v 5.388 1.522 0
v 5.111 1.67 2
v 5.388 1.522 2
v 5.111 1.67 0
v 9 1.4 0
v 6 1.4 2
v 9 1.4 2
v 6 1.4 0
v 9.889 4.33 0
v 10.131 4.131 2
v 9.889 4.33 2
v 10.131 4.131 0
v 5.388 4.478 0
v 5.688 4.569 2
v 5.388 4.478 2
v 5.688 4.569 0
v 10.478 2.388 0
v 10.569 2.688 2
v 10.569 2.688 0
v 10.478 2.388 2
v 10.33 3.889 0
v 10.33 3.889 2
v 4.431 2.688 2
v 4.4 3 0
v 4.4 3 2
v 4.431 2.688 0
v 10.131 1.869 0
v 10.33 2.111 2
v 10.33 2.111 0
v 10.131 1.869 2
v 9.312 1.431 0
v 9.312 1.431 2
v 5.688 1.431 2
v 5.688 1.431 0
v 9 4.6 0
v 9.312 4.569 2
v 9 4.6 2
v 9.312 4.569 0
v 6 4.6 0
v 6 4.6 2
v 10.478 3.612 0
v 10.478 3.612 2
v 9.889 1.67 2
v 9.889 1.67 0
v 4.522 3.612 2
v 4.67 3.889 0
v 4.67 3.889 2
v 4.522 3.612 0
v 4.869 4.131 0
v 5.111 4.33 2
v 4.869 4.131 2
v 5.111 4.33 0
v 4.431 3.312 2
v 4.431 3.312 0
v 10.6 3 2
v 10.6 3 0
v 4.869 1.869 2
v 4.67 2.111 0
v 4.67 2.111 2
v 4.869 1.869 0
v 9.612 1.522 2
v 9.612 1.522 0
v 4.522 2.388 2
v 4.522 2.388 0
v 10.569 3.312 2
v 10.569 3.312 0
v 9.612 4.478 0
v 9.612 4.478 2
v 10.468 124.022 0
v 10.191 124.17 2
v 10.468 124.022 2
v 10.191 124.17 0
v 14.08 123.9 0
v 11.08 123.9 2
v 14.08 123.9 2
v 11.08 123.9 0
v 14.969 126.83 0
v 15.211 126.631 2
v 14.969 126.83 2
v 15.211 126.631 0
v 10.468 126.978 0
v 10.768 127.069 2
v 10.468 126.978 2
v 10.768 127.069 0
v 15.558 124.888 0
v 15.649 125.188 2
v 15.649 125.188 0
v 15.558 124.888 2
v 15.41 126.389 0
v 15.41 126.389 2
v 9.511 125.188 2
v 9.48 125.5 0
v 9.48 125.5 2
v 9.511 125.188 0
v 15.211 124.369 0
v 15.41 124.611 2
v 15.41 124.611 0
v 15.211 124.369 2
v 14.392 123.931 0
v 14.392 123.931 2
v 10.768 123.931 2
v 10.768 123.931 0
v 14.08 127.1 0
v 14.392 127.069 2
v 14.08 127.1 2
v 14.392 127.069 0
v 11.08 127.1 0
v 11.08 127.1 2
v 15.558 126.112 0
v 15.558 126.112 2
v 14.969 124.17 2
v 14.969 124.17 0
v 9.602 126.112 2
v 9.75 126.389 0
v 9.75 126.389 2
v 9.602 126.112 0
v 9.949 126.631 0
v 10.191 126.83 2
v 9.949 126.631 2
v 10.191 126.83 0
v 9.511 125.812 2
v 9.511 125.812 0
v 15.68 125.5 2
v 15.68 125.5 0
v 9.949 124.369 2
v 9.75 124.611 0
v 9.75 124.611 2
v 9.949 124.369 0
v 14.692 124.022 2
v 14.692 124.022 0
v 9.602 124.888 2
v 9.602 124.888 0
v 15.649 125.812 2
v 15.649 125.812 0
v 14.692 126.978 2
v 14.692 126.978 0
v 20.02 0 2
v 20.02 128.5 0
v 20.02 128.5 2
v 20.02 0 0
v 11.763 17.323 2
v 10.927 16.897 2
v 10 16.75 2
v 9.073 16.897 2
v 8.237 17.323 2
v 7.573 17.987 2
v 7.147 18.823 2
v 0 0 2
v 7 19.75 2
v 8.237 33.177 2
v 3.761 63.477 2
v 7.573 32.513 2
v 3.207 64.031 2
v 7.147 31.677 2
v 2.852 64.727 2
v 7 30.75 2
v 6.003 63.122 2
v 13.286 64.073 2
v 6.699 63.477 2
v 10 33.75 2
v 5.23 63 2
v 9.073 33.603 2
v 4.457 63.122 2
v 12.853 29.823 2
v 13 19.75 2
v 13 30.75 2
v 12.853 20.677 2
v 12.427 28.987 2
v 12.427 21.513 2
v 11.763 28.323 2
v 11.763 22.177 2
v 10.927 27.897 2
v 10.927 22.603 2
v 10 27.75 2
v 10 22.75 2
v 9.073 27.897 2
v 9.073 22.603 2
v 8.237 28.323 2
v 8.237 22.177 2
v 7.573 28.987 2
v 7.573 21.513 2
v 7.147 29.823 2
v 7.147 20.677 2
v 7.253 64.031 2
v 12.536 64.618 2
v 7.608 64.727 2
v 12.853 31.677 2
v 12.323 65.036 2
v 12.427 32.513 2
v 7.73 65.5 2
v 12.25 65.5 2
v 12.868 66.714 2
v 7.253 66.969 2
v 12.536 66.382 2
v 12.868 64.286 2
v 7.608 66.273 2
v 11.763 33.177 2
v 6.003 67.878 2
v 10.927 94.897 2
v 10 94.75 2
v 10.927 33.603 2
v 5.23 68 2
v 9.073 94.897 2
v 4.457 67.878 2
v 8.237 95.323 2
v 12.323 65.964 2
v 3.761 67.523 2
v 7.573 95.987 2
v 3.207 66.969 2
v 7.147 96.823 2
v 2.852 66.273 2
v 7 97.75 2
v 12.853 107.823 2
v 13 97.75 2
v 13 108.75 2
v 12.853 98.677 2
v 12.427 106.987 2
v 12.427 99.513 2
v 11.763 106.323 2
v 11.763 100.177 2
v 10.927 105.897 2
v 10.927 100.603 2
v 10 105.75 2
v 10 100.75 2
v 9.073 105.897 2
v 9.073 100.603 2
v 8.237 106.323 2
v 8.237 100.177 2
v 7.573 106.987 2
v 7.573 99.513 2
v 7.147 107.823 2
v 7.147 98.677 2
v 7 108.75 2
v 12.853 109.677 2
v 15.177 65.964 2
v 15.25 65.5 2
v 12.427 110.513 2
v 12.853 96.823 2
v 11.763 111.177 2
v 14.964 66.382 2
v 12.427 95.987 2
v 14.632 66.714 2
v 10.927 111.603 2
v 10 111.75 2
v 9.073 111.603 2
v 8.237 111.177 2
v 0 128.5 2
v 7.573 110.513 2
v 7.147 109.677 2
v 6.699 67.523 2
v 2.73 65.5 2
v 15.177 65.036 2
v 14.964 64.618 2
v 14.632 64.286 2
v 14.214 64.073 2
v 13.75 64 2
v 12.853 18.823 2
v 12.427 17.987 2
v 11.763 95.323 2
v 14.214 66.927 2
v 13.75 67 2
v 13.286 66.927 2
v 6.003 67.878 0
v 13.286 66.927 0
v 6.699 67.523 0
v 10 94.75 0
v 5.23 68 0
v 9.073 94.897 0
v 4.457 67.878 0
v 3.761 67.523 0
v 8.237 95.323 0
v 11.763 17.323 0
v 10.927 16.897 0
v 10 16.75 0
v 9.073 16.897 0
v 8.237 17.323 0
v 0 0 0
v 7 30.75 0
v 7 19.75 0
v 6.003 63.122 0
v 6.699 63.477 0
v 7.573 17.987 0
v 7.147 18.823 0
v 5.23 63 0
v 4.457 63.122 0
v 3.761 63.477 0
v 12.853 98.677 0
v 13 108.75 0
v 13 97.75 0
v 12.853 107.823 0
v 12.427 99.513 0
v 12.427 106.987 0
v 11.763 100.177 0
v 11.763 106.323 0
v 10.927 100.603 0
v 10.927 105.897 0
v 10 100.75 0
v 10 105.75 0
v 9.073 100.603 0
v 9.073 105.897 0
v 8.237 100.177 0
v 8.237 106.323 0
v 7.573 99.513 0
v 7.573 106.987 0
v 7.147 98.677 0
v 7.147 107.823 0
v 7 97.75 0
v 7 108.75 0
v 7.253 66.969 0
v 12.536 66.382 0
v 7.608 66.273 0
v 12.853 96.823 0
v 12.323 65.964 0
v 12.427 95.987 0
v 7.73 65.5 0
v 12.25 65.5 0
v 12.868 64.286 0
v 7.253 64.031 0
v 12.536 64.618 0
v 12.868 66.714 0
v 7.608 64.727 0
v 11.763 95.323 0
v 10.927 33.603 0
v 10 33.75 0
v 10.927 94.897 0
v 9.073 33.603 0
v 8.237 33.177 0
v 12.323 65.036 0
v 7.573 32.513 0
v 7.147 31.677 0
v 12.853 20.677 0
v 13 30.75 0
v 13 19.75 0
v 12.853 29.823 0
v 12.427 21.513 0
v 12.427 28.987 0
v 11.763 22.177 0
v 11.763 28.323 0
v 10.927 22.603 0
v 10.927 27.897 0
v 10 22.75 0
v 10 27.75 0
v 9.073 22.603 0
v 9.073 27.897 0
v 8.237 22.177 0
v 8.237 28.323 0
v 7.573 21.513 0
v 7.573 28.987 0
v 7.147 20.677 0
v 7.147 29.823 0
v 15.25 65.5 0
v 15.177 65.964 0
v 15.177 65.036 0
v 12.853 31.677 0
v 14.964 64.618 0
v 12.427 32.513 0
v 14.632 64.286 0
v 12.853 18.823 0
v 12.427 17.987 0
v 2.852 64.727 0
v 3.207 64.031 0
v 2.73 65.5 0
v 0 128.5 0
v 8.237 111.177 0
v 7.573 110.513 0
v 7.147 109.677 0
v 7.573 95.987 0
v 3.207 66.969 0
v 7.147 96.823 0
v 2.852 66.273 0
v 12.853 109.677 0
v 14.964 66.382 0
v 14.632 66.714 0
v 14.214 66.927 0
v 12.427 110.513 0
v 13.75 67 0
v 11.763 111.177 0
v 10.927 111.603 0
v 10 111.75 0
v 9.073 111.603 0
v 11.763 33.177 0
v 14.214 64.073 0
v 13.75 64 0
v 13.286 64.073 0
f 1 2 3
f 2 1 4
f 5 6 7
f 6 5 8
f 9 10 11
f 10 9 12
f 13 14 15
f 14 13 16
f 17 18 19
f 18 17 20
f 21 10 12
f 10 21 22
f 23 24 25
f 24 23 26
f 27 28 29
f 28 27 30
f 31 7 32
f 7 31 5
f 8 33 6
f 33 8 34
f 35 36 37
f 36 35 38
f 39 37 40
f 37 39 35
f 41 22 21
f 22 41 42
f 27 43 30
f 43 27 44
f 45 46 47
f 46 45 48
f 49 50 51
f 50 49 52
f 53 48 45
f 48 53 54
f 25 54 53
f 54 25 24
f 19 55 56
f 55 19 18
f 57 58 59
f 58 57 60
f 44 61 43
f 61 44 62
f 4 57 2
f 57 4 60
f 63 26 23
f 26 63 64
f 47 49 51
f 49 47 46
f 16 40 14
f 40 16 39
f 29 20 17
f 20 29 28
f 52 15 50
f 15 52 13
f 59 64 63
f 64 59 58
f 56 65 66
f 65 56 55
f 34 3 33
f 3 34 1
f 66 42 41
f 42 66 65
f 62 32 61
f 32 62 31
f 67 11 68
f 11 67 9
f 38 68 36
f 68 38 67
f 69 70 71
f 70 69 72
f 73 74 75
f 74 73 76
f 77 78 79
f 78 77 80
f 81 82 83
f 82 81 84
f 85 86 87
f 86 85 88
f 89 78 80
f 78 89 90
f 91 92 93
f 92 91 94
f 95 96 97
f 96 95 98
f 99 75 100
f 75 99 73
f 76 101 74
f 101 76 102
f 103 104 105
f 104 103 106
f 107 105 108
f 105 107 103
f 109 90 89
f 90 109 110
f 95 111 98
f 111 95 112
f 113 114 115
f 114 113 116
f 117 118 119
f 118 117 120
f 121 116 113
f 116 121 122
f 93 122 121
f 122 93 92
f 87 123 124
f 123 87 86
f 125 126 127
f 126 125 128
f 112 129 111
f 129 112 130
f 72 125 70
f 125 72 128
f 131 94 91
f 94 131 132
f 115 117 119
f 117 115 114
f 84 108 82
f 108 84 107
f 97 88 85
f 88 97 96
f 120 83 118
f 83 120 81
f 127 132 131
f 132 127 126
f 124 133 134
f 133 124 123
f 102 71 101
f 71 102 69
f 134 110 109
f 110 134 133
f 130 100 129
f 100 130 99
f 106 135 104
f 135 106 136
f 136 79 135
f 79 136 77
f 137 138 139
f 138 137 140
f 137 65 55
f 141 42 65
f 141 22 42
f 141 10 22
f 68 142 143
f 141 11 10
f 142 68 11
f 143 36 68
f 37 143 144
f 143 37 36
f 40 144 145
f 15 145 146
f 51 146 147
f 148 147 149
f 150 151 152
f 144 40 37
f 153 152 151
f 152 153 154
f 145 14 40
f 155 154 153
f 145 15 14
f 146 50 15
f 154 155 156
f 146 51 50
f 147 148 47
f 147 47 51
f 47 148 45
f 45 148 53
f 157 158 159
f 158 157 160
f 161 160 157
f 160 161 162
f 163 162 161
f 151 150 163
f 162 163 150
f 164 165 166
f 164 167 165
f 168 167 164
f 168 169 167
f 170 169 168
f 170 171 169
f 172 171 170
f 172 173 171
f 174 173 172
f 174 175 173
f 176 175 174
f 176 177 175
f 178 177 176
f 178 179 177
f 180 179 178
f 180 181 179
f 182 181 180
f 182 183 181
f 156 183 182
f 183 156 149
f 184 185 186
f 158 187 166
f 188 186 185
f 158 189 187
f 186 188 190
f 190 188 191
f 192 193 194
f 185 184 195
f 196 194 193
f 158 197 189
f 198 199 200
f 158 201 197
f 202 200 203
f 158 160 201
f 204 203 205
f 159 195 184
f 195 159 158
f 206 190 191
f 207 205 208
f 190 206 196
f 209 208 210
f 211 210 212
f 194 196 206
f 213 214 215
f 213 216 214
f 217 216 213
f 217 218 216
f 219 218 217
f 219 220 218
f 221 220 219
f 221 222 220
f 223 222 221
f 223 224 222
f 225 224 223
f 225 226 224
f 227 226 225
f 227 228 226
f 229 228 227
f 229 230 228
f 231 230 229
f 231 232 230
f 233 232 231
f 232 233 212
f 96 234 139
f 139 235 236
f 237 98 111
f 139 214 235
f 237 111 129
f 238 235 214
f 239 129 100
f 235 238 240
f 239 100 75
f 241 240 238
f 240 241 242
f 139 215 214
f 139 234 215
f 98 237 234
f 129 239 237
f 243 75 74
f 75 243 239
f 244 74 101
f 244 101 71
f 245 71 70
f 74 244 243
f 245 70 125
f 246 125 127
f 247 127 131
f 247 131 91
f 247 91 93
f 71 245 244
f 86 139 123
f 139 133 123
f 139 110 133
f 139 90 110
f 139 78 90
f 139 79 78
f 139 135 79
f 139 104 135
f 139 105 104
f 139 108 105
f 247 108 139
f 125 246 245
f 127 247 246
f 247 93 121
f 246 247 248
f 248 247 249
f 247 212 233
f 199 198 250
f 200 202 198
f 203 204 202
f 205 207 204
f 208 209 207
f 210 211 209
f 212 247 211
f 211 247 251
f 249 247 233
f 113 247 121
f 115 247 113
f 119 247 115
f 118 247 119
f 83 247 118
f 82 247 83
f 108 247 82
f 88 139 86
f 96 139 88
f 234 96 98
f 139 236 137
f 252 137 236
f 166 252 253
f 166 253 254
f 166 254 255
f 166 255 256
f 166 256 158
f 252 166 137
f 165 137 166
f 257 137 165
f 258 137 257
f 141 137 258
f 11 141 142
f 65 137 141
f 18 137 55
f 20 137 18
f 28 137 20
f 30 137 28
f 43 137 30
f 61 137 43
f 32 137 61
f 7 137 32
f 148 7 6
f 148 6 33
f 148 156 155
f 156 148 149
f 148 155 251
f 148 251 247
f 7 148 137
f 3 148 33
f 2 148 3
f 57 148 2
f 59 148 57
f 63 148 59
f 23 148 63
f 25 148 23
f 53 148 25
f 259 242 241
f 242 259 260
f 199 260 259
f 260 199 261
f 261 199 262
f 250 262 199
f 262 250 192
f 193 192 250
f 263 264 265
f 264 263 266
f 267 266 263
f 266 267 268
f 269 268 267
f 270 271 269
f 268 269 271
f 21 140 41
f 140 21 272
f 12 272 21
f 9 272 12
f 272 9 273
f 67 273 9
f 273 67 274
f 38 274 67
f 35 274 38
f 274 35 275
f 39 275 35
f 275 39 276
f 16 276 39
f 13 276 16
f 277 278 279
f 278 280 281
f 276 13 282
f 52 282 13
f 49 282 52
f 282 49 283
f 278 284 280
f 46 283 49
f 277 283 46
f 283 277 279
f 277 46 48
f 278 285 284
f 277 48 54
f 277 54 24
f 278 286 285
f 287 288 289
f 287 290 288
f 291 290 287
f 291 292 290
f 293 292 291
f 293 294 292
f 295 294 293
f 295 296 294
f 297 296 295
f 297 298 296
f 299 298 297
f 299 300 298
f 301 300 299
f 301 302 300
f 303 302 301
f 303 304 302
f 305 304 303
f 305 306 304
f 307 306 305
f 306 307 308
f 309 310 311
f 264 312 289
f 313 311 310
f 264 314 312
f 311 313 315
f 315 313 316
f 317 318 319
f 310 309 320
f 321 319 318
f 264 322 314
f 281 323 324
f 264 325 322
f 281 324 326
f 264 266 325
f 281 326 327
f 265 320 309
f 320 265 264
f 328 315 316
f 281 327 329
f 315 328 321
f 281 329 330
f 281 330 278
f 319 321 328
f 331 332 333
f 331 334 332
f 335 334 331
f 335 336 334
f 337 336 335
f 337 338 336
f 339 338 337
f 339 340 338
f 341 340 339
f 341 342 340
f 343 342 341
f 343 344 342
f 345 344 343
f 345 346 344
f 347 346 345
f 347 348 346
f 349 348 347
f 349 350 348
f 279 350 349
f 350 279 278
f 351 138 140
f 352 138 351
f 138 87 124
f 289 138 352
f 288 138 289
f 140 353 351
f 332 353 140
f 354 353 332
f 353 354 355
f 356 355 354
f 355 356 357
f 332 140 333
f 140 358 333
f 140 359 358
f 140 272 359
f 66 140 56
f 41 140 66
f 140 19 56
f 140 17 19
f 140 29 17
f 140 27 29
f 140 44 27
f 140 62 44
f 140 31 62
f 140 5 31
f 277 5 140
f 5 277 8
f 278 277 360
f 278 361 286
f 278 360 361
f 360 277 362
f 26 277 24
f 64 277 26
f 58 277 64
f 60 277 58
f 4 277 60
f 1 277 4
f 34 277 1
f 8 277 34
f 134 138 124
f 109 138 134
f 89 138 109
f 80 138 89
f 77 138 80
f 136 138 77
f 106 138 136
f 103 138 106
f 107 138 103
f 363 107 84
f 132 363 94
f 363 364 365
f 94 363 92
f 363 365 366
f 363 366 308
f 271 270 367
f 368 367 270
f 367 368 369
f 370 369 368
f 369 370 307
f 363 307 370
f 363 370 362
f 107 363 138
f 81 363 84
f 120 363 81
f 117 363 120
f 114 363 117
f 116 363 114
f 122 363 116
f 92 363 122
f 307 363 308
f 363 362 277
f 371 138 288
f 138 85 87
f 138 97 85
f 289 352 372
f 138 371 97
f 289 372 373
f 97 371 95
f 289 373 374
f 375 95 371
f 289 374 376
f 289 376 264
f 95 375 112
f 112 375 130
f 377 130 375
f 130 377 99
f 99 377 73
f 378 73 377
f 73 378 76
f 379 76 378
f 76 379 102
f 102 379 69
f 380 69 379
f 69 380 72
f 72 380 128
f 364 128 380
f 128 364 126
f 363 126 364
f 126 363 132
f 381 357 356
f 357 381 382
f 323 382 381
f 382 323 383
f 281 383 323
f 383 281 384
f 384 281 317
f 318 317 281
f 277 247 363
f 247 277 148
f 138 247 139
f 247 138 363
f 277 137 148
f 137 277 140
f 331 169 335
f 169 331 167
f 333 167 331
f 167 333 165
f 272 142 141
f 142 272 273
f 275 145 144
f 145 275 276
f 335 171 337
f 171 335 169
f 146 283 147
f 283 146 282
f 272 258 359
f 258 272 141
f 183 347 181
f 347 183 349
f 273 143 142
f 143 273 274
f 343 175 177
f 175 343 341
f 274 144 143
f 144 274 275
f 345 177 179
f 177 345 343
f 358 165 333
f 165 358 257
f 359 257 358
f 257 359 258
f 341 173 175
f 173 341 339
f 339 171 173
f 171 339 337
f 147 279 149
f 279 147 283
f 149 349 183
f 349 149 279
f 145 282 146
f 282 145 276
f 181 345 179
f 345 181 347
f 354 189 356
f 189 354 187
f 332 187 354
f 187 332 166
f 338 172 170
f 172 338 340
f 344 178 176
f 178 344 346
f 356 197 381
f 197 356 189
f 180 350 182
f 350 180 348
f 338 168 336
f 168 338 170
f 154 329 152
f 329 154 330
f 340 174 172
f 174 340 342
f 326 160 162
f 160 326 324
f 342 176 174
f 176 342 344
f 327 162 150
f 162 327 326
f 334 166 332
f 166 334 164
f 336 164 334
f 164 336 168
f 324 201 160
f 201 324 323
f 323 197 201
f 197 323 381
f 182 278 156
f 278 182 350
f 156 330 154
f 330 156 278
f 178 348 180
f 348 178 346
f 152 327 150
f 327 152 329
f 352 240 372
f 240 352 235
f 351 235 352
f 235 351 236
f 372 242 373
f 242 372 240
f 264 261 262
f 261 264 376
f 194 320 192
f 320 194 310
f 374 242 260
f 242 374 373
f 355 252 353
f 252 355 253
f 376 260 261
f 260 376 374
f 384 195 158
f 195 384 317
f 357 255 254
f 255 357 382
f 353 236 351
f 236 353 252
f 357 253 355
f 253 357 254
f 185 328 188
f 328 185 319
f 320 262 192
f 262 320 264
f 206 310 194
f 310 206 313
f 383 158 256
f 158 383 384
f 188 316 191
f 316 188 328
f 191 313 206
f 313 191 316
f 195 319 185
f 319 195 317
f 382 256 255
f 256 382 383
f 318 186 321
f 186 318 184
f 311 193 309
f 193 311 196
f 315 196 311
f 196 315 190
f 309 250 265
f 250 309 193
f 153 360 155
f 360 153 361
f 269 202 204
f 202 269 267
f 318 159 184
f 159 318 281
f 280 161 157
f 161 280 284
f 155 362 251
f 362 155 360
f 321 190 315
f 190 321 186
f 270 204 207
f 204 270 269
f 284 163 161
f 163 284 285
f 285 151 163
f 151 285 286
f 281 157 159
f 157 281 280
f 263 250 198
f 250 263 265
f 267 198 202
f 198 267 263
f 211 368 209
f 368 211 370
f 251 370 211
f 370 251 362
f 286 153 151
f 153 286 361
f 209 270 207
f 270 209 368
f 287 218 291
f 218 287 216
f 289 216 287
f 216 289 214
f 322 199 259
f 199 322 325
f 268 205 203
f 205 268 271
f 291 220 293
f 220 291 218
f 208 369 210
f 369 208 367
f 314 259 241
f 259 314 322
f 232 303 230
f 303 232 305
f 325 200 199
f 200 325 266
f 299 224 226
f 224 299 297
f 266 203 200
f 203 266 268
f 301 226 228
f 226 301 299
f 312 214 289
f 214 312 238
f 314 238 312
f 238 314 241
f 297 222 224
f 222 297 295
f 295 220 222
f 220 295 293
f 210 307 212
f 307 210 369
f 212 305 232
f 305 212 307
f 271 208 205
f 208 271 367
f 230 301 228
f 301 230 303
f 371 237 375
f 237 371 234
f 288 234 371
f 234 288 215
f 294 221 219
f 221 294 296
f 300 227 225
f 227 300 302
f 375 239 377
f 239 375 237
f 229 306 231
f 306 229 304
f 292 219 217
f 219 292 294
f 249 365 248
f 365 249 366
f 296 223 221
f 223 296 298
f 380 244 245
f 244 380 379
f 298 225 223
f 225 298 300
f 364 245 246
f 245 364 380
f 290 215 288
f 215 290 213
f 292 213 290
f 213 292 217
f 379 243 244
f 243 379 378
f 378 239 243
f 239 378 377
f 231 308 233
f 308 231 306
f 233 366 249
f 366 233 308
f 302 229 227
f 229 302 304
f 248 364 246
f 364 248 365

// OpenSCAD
// file: eurorack.scad
panelHeight = 128.5;
thickness = 2;
mountHoleOffset=7.5;
mountHoleGap=5.08;
mountHoleDiameter = 3.0;
jackHoleDiameter = 6;
ledHoleDiameter = 5;
pushButtonHoleDiameter = 7;
potHoleDiameter = 6;
switchHoleDiameter = 6;
rotarySwitchHoleDiameter = 9.1;
microSwitchHoleDiameter=3;


function hp(x) = x * 5.08 - 0.3;


// Eurorack mounting hole.
//   x, y      : hole center position (panel coordinates)
//   d         : hole diameter (3.2 default = M3 clearance, slightly oversize)
//   slot      : horizontal slot length for tolerance (0 = plain round hole)
//   depth     : cut depth; leave default to punch fully through any panel thickness
module euroRackMountHole(x, y, d = 3.2, slot = 1, depth = 100) {
    translate([x, y, -depth/2])
        hull() {
            // two cylinders spaced by `slot` make an obround (stadium) slot;
            // slot = 0 collapses to a single round hole
            for (dx = [-slot/2, slot/2])
                translate([dx, 0, 0])
                    cylinder(h = depth, d = d, $fn = 32);
        }
}

module euroRackMountHoles(n_top, n_bot) {
   euroRackMountHole(mountHoleOffset + n_top*mountHoleGap, 3, slot=3);
   euroRackMountHole(mountHoleOffset + n_bot*mountHoleGap, panelHeight-3, slot=3);
}

module punchHole(x, y, holeSize,chamfer=false){
  translate([x, y, -1]){
    cylinder(r=holeSize/2, h=thickness+2, $fn=20);
    if(chamfer) {
      translate([0, 0, 0.5]){
        cylinder(r2=holeSize, r1=0, h=holeSize+0.5, $fn=20);
      }
    }
  }
}

module led(x, y) {
    punchHole(x, y, ledHoleDiameter);
}
module microswitch(x, y) {
    punchHole(x, y, microSwitchHoleDiameter);
}
module switch(x, y) { 
    punchHole(x, y, switchHoleDiameter);
}
module pushButton(x, y) { 
    punchHole(x, y, pushButtonHoleDiameter);
}
module rotarySwitch(x, y) { 
    punchHole(x, y, rotarySwitchHoleDiameter);
}
module sevenSegmentDisplay(x, y) {
    translate([x-6.5, y-9.6, -1]){
        cube([13, 19.2, thickness+2]);
    }
}

module pot(x, y) {
  punchHole(x, y, potHoleDiameter);
}

module jack(x, y){
  punchHole(x, y, jackHoleDiameter);
}

module panel(width) {
   cube([width, panelHeight, thickness]);
}
// main file
include <eurorack.scad>

 difference() {
     panel(hp(4));
     
     euroRackMountHoles(0, 1);
       
     jack(10, 19.75);
     jack(10, 30.75);
     
     microswitch((11.5+16)/2, 65.5);
     led((6.5-1.27), 65.5);
     
     jack(10, 97.75);
     jack(10, 108.75);     
 }
